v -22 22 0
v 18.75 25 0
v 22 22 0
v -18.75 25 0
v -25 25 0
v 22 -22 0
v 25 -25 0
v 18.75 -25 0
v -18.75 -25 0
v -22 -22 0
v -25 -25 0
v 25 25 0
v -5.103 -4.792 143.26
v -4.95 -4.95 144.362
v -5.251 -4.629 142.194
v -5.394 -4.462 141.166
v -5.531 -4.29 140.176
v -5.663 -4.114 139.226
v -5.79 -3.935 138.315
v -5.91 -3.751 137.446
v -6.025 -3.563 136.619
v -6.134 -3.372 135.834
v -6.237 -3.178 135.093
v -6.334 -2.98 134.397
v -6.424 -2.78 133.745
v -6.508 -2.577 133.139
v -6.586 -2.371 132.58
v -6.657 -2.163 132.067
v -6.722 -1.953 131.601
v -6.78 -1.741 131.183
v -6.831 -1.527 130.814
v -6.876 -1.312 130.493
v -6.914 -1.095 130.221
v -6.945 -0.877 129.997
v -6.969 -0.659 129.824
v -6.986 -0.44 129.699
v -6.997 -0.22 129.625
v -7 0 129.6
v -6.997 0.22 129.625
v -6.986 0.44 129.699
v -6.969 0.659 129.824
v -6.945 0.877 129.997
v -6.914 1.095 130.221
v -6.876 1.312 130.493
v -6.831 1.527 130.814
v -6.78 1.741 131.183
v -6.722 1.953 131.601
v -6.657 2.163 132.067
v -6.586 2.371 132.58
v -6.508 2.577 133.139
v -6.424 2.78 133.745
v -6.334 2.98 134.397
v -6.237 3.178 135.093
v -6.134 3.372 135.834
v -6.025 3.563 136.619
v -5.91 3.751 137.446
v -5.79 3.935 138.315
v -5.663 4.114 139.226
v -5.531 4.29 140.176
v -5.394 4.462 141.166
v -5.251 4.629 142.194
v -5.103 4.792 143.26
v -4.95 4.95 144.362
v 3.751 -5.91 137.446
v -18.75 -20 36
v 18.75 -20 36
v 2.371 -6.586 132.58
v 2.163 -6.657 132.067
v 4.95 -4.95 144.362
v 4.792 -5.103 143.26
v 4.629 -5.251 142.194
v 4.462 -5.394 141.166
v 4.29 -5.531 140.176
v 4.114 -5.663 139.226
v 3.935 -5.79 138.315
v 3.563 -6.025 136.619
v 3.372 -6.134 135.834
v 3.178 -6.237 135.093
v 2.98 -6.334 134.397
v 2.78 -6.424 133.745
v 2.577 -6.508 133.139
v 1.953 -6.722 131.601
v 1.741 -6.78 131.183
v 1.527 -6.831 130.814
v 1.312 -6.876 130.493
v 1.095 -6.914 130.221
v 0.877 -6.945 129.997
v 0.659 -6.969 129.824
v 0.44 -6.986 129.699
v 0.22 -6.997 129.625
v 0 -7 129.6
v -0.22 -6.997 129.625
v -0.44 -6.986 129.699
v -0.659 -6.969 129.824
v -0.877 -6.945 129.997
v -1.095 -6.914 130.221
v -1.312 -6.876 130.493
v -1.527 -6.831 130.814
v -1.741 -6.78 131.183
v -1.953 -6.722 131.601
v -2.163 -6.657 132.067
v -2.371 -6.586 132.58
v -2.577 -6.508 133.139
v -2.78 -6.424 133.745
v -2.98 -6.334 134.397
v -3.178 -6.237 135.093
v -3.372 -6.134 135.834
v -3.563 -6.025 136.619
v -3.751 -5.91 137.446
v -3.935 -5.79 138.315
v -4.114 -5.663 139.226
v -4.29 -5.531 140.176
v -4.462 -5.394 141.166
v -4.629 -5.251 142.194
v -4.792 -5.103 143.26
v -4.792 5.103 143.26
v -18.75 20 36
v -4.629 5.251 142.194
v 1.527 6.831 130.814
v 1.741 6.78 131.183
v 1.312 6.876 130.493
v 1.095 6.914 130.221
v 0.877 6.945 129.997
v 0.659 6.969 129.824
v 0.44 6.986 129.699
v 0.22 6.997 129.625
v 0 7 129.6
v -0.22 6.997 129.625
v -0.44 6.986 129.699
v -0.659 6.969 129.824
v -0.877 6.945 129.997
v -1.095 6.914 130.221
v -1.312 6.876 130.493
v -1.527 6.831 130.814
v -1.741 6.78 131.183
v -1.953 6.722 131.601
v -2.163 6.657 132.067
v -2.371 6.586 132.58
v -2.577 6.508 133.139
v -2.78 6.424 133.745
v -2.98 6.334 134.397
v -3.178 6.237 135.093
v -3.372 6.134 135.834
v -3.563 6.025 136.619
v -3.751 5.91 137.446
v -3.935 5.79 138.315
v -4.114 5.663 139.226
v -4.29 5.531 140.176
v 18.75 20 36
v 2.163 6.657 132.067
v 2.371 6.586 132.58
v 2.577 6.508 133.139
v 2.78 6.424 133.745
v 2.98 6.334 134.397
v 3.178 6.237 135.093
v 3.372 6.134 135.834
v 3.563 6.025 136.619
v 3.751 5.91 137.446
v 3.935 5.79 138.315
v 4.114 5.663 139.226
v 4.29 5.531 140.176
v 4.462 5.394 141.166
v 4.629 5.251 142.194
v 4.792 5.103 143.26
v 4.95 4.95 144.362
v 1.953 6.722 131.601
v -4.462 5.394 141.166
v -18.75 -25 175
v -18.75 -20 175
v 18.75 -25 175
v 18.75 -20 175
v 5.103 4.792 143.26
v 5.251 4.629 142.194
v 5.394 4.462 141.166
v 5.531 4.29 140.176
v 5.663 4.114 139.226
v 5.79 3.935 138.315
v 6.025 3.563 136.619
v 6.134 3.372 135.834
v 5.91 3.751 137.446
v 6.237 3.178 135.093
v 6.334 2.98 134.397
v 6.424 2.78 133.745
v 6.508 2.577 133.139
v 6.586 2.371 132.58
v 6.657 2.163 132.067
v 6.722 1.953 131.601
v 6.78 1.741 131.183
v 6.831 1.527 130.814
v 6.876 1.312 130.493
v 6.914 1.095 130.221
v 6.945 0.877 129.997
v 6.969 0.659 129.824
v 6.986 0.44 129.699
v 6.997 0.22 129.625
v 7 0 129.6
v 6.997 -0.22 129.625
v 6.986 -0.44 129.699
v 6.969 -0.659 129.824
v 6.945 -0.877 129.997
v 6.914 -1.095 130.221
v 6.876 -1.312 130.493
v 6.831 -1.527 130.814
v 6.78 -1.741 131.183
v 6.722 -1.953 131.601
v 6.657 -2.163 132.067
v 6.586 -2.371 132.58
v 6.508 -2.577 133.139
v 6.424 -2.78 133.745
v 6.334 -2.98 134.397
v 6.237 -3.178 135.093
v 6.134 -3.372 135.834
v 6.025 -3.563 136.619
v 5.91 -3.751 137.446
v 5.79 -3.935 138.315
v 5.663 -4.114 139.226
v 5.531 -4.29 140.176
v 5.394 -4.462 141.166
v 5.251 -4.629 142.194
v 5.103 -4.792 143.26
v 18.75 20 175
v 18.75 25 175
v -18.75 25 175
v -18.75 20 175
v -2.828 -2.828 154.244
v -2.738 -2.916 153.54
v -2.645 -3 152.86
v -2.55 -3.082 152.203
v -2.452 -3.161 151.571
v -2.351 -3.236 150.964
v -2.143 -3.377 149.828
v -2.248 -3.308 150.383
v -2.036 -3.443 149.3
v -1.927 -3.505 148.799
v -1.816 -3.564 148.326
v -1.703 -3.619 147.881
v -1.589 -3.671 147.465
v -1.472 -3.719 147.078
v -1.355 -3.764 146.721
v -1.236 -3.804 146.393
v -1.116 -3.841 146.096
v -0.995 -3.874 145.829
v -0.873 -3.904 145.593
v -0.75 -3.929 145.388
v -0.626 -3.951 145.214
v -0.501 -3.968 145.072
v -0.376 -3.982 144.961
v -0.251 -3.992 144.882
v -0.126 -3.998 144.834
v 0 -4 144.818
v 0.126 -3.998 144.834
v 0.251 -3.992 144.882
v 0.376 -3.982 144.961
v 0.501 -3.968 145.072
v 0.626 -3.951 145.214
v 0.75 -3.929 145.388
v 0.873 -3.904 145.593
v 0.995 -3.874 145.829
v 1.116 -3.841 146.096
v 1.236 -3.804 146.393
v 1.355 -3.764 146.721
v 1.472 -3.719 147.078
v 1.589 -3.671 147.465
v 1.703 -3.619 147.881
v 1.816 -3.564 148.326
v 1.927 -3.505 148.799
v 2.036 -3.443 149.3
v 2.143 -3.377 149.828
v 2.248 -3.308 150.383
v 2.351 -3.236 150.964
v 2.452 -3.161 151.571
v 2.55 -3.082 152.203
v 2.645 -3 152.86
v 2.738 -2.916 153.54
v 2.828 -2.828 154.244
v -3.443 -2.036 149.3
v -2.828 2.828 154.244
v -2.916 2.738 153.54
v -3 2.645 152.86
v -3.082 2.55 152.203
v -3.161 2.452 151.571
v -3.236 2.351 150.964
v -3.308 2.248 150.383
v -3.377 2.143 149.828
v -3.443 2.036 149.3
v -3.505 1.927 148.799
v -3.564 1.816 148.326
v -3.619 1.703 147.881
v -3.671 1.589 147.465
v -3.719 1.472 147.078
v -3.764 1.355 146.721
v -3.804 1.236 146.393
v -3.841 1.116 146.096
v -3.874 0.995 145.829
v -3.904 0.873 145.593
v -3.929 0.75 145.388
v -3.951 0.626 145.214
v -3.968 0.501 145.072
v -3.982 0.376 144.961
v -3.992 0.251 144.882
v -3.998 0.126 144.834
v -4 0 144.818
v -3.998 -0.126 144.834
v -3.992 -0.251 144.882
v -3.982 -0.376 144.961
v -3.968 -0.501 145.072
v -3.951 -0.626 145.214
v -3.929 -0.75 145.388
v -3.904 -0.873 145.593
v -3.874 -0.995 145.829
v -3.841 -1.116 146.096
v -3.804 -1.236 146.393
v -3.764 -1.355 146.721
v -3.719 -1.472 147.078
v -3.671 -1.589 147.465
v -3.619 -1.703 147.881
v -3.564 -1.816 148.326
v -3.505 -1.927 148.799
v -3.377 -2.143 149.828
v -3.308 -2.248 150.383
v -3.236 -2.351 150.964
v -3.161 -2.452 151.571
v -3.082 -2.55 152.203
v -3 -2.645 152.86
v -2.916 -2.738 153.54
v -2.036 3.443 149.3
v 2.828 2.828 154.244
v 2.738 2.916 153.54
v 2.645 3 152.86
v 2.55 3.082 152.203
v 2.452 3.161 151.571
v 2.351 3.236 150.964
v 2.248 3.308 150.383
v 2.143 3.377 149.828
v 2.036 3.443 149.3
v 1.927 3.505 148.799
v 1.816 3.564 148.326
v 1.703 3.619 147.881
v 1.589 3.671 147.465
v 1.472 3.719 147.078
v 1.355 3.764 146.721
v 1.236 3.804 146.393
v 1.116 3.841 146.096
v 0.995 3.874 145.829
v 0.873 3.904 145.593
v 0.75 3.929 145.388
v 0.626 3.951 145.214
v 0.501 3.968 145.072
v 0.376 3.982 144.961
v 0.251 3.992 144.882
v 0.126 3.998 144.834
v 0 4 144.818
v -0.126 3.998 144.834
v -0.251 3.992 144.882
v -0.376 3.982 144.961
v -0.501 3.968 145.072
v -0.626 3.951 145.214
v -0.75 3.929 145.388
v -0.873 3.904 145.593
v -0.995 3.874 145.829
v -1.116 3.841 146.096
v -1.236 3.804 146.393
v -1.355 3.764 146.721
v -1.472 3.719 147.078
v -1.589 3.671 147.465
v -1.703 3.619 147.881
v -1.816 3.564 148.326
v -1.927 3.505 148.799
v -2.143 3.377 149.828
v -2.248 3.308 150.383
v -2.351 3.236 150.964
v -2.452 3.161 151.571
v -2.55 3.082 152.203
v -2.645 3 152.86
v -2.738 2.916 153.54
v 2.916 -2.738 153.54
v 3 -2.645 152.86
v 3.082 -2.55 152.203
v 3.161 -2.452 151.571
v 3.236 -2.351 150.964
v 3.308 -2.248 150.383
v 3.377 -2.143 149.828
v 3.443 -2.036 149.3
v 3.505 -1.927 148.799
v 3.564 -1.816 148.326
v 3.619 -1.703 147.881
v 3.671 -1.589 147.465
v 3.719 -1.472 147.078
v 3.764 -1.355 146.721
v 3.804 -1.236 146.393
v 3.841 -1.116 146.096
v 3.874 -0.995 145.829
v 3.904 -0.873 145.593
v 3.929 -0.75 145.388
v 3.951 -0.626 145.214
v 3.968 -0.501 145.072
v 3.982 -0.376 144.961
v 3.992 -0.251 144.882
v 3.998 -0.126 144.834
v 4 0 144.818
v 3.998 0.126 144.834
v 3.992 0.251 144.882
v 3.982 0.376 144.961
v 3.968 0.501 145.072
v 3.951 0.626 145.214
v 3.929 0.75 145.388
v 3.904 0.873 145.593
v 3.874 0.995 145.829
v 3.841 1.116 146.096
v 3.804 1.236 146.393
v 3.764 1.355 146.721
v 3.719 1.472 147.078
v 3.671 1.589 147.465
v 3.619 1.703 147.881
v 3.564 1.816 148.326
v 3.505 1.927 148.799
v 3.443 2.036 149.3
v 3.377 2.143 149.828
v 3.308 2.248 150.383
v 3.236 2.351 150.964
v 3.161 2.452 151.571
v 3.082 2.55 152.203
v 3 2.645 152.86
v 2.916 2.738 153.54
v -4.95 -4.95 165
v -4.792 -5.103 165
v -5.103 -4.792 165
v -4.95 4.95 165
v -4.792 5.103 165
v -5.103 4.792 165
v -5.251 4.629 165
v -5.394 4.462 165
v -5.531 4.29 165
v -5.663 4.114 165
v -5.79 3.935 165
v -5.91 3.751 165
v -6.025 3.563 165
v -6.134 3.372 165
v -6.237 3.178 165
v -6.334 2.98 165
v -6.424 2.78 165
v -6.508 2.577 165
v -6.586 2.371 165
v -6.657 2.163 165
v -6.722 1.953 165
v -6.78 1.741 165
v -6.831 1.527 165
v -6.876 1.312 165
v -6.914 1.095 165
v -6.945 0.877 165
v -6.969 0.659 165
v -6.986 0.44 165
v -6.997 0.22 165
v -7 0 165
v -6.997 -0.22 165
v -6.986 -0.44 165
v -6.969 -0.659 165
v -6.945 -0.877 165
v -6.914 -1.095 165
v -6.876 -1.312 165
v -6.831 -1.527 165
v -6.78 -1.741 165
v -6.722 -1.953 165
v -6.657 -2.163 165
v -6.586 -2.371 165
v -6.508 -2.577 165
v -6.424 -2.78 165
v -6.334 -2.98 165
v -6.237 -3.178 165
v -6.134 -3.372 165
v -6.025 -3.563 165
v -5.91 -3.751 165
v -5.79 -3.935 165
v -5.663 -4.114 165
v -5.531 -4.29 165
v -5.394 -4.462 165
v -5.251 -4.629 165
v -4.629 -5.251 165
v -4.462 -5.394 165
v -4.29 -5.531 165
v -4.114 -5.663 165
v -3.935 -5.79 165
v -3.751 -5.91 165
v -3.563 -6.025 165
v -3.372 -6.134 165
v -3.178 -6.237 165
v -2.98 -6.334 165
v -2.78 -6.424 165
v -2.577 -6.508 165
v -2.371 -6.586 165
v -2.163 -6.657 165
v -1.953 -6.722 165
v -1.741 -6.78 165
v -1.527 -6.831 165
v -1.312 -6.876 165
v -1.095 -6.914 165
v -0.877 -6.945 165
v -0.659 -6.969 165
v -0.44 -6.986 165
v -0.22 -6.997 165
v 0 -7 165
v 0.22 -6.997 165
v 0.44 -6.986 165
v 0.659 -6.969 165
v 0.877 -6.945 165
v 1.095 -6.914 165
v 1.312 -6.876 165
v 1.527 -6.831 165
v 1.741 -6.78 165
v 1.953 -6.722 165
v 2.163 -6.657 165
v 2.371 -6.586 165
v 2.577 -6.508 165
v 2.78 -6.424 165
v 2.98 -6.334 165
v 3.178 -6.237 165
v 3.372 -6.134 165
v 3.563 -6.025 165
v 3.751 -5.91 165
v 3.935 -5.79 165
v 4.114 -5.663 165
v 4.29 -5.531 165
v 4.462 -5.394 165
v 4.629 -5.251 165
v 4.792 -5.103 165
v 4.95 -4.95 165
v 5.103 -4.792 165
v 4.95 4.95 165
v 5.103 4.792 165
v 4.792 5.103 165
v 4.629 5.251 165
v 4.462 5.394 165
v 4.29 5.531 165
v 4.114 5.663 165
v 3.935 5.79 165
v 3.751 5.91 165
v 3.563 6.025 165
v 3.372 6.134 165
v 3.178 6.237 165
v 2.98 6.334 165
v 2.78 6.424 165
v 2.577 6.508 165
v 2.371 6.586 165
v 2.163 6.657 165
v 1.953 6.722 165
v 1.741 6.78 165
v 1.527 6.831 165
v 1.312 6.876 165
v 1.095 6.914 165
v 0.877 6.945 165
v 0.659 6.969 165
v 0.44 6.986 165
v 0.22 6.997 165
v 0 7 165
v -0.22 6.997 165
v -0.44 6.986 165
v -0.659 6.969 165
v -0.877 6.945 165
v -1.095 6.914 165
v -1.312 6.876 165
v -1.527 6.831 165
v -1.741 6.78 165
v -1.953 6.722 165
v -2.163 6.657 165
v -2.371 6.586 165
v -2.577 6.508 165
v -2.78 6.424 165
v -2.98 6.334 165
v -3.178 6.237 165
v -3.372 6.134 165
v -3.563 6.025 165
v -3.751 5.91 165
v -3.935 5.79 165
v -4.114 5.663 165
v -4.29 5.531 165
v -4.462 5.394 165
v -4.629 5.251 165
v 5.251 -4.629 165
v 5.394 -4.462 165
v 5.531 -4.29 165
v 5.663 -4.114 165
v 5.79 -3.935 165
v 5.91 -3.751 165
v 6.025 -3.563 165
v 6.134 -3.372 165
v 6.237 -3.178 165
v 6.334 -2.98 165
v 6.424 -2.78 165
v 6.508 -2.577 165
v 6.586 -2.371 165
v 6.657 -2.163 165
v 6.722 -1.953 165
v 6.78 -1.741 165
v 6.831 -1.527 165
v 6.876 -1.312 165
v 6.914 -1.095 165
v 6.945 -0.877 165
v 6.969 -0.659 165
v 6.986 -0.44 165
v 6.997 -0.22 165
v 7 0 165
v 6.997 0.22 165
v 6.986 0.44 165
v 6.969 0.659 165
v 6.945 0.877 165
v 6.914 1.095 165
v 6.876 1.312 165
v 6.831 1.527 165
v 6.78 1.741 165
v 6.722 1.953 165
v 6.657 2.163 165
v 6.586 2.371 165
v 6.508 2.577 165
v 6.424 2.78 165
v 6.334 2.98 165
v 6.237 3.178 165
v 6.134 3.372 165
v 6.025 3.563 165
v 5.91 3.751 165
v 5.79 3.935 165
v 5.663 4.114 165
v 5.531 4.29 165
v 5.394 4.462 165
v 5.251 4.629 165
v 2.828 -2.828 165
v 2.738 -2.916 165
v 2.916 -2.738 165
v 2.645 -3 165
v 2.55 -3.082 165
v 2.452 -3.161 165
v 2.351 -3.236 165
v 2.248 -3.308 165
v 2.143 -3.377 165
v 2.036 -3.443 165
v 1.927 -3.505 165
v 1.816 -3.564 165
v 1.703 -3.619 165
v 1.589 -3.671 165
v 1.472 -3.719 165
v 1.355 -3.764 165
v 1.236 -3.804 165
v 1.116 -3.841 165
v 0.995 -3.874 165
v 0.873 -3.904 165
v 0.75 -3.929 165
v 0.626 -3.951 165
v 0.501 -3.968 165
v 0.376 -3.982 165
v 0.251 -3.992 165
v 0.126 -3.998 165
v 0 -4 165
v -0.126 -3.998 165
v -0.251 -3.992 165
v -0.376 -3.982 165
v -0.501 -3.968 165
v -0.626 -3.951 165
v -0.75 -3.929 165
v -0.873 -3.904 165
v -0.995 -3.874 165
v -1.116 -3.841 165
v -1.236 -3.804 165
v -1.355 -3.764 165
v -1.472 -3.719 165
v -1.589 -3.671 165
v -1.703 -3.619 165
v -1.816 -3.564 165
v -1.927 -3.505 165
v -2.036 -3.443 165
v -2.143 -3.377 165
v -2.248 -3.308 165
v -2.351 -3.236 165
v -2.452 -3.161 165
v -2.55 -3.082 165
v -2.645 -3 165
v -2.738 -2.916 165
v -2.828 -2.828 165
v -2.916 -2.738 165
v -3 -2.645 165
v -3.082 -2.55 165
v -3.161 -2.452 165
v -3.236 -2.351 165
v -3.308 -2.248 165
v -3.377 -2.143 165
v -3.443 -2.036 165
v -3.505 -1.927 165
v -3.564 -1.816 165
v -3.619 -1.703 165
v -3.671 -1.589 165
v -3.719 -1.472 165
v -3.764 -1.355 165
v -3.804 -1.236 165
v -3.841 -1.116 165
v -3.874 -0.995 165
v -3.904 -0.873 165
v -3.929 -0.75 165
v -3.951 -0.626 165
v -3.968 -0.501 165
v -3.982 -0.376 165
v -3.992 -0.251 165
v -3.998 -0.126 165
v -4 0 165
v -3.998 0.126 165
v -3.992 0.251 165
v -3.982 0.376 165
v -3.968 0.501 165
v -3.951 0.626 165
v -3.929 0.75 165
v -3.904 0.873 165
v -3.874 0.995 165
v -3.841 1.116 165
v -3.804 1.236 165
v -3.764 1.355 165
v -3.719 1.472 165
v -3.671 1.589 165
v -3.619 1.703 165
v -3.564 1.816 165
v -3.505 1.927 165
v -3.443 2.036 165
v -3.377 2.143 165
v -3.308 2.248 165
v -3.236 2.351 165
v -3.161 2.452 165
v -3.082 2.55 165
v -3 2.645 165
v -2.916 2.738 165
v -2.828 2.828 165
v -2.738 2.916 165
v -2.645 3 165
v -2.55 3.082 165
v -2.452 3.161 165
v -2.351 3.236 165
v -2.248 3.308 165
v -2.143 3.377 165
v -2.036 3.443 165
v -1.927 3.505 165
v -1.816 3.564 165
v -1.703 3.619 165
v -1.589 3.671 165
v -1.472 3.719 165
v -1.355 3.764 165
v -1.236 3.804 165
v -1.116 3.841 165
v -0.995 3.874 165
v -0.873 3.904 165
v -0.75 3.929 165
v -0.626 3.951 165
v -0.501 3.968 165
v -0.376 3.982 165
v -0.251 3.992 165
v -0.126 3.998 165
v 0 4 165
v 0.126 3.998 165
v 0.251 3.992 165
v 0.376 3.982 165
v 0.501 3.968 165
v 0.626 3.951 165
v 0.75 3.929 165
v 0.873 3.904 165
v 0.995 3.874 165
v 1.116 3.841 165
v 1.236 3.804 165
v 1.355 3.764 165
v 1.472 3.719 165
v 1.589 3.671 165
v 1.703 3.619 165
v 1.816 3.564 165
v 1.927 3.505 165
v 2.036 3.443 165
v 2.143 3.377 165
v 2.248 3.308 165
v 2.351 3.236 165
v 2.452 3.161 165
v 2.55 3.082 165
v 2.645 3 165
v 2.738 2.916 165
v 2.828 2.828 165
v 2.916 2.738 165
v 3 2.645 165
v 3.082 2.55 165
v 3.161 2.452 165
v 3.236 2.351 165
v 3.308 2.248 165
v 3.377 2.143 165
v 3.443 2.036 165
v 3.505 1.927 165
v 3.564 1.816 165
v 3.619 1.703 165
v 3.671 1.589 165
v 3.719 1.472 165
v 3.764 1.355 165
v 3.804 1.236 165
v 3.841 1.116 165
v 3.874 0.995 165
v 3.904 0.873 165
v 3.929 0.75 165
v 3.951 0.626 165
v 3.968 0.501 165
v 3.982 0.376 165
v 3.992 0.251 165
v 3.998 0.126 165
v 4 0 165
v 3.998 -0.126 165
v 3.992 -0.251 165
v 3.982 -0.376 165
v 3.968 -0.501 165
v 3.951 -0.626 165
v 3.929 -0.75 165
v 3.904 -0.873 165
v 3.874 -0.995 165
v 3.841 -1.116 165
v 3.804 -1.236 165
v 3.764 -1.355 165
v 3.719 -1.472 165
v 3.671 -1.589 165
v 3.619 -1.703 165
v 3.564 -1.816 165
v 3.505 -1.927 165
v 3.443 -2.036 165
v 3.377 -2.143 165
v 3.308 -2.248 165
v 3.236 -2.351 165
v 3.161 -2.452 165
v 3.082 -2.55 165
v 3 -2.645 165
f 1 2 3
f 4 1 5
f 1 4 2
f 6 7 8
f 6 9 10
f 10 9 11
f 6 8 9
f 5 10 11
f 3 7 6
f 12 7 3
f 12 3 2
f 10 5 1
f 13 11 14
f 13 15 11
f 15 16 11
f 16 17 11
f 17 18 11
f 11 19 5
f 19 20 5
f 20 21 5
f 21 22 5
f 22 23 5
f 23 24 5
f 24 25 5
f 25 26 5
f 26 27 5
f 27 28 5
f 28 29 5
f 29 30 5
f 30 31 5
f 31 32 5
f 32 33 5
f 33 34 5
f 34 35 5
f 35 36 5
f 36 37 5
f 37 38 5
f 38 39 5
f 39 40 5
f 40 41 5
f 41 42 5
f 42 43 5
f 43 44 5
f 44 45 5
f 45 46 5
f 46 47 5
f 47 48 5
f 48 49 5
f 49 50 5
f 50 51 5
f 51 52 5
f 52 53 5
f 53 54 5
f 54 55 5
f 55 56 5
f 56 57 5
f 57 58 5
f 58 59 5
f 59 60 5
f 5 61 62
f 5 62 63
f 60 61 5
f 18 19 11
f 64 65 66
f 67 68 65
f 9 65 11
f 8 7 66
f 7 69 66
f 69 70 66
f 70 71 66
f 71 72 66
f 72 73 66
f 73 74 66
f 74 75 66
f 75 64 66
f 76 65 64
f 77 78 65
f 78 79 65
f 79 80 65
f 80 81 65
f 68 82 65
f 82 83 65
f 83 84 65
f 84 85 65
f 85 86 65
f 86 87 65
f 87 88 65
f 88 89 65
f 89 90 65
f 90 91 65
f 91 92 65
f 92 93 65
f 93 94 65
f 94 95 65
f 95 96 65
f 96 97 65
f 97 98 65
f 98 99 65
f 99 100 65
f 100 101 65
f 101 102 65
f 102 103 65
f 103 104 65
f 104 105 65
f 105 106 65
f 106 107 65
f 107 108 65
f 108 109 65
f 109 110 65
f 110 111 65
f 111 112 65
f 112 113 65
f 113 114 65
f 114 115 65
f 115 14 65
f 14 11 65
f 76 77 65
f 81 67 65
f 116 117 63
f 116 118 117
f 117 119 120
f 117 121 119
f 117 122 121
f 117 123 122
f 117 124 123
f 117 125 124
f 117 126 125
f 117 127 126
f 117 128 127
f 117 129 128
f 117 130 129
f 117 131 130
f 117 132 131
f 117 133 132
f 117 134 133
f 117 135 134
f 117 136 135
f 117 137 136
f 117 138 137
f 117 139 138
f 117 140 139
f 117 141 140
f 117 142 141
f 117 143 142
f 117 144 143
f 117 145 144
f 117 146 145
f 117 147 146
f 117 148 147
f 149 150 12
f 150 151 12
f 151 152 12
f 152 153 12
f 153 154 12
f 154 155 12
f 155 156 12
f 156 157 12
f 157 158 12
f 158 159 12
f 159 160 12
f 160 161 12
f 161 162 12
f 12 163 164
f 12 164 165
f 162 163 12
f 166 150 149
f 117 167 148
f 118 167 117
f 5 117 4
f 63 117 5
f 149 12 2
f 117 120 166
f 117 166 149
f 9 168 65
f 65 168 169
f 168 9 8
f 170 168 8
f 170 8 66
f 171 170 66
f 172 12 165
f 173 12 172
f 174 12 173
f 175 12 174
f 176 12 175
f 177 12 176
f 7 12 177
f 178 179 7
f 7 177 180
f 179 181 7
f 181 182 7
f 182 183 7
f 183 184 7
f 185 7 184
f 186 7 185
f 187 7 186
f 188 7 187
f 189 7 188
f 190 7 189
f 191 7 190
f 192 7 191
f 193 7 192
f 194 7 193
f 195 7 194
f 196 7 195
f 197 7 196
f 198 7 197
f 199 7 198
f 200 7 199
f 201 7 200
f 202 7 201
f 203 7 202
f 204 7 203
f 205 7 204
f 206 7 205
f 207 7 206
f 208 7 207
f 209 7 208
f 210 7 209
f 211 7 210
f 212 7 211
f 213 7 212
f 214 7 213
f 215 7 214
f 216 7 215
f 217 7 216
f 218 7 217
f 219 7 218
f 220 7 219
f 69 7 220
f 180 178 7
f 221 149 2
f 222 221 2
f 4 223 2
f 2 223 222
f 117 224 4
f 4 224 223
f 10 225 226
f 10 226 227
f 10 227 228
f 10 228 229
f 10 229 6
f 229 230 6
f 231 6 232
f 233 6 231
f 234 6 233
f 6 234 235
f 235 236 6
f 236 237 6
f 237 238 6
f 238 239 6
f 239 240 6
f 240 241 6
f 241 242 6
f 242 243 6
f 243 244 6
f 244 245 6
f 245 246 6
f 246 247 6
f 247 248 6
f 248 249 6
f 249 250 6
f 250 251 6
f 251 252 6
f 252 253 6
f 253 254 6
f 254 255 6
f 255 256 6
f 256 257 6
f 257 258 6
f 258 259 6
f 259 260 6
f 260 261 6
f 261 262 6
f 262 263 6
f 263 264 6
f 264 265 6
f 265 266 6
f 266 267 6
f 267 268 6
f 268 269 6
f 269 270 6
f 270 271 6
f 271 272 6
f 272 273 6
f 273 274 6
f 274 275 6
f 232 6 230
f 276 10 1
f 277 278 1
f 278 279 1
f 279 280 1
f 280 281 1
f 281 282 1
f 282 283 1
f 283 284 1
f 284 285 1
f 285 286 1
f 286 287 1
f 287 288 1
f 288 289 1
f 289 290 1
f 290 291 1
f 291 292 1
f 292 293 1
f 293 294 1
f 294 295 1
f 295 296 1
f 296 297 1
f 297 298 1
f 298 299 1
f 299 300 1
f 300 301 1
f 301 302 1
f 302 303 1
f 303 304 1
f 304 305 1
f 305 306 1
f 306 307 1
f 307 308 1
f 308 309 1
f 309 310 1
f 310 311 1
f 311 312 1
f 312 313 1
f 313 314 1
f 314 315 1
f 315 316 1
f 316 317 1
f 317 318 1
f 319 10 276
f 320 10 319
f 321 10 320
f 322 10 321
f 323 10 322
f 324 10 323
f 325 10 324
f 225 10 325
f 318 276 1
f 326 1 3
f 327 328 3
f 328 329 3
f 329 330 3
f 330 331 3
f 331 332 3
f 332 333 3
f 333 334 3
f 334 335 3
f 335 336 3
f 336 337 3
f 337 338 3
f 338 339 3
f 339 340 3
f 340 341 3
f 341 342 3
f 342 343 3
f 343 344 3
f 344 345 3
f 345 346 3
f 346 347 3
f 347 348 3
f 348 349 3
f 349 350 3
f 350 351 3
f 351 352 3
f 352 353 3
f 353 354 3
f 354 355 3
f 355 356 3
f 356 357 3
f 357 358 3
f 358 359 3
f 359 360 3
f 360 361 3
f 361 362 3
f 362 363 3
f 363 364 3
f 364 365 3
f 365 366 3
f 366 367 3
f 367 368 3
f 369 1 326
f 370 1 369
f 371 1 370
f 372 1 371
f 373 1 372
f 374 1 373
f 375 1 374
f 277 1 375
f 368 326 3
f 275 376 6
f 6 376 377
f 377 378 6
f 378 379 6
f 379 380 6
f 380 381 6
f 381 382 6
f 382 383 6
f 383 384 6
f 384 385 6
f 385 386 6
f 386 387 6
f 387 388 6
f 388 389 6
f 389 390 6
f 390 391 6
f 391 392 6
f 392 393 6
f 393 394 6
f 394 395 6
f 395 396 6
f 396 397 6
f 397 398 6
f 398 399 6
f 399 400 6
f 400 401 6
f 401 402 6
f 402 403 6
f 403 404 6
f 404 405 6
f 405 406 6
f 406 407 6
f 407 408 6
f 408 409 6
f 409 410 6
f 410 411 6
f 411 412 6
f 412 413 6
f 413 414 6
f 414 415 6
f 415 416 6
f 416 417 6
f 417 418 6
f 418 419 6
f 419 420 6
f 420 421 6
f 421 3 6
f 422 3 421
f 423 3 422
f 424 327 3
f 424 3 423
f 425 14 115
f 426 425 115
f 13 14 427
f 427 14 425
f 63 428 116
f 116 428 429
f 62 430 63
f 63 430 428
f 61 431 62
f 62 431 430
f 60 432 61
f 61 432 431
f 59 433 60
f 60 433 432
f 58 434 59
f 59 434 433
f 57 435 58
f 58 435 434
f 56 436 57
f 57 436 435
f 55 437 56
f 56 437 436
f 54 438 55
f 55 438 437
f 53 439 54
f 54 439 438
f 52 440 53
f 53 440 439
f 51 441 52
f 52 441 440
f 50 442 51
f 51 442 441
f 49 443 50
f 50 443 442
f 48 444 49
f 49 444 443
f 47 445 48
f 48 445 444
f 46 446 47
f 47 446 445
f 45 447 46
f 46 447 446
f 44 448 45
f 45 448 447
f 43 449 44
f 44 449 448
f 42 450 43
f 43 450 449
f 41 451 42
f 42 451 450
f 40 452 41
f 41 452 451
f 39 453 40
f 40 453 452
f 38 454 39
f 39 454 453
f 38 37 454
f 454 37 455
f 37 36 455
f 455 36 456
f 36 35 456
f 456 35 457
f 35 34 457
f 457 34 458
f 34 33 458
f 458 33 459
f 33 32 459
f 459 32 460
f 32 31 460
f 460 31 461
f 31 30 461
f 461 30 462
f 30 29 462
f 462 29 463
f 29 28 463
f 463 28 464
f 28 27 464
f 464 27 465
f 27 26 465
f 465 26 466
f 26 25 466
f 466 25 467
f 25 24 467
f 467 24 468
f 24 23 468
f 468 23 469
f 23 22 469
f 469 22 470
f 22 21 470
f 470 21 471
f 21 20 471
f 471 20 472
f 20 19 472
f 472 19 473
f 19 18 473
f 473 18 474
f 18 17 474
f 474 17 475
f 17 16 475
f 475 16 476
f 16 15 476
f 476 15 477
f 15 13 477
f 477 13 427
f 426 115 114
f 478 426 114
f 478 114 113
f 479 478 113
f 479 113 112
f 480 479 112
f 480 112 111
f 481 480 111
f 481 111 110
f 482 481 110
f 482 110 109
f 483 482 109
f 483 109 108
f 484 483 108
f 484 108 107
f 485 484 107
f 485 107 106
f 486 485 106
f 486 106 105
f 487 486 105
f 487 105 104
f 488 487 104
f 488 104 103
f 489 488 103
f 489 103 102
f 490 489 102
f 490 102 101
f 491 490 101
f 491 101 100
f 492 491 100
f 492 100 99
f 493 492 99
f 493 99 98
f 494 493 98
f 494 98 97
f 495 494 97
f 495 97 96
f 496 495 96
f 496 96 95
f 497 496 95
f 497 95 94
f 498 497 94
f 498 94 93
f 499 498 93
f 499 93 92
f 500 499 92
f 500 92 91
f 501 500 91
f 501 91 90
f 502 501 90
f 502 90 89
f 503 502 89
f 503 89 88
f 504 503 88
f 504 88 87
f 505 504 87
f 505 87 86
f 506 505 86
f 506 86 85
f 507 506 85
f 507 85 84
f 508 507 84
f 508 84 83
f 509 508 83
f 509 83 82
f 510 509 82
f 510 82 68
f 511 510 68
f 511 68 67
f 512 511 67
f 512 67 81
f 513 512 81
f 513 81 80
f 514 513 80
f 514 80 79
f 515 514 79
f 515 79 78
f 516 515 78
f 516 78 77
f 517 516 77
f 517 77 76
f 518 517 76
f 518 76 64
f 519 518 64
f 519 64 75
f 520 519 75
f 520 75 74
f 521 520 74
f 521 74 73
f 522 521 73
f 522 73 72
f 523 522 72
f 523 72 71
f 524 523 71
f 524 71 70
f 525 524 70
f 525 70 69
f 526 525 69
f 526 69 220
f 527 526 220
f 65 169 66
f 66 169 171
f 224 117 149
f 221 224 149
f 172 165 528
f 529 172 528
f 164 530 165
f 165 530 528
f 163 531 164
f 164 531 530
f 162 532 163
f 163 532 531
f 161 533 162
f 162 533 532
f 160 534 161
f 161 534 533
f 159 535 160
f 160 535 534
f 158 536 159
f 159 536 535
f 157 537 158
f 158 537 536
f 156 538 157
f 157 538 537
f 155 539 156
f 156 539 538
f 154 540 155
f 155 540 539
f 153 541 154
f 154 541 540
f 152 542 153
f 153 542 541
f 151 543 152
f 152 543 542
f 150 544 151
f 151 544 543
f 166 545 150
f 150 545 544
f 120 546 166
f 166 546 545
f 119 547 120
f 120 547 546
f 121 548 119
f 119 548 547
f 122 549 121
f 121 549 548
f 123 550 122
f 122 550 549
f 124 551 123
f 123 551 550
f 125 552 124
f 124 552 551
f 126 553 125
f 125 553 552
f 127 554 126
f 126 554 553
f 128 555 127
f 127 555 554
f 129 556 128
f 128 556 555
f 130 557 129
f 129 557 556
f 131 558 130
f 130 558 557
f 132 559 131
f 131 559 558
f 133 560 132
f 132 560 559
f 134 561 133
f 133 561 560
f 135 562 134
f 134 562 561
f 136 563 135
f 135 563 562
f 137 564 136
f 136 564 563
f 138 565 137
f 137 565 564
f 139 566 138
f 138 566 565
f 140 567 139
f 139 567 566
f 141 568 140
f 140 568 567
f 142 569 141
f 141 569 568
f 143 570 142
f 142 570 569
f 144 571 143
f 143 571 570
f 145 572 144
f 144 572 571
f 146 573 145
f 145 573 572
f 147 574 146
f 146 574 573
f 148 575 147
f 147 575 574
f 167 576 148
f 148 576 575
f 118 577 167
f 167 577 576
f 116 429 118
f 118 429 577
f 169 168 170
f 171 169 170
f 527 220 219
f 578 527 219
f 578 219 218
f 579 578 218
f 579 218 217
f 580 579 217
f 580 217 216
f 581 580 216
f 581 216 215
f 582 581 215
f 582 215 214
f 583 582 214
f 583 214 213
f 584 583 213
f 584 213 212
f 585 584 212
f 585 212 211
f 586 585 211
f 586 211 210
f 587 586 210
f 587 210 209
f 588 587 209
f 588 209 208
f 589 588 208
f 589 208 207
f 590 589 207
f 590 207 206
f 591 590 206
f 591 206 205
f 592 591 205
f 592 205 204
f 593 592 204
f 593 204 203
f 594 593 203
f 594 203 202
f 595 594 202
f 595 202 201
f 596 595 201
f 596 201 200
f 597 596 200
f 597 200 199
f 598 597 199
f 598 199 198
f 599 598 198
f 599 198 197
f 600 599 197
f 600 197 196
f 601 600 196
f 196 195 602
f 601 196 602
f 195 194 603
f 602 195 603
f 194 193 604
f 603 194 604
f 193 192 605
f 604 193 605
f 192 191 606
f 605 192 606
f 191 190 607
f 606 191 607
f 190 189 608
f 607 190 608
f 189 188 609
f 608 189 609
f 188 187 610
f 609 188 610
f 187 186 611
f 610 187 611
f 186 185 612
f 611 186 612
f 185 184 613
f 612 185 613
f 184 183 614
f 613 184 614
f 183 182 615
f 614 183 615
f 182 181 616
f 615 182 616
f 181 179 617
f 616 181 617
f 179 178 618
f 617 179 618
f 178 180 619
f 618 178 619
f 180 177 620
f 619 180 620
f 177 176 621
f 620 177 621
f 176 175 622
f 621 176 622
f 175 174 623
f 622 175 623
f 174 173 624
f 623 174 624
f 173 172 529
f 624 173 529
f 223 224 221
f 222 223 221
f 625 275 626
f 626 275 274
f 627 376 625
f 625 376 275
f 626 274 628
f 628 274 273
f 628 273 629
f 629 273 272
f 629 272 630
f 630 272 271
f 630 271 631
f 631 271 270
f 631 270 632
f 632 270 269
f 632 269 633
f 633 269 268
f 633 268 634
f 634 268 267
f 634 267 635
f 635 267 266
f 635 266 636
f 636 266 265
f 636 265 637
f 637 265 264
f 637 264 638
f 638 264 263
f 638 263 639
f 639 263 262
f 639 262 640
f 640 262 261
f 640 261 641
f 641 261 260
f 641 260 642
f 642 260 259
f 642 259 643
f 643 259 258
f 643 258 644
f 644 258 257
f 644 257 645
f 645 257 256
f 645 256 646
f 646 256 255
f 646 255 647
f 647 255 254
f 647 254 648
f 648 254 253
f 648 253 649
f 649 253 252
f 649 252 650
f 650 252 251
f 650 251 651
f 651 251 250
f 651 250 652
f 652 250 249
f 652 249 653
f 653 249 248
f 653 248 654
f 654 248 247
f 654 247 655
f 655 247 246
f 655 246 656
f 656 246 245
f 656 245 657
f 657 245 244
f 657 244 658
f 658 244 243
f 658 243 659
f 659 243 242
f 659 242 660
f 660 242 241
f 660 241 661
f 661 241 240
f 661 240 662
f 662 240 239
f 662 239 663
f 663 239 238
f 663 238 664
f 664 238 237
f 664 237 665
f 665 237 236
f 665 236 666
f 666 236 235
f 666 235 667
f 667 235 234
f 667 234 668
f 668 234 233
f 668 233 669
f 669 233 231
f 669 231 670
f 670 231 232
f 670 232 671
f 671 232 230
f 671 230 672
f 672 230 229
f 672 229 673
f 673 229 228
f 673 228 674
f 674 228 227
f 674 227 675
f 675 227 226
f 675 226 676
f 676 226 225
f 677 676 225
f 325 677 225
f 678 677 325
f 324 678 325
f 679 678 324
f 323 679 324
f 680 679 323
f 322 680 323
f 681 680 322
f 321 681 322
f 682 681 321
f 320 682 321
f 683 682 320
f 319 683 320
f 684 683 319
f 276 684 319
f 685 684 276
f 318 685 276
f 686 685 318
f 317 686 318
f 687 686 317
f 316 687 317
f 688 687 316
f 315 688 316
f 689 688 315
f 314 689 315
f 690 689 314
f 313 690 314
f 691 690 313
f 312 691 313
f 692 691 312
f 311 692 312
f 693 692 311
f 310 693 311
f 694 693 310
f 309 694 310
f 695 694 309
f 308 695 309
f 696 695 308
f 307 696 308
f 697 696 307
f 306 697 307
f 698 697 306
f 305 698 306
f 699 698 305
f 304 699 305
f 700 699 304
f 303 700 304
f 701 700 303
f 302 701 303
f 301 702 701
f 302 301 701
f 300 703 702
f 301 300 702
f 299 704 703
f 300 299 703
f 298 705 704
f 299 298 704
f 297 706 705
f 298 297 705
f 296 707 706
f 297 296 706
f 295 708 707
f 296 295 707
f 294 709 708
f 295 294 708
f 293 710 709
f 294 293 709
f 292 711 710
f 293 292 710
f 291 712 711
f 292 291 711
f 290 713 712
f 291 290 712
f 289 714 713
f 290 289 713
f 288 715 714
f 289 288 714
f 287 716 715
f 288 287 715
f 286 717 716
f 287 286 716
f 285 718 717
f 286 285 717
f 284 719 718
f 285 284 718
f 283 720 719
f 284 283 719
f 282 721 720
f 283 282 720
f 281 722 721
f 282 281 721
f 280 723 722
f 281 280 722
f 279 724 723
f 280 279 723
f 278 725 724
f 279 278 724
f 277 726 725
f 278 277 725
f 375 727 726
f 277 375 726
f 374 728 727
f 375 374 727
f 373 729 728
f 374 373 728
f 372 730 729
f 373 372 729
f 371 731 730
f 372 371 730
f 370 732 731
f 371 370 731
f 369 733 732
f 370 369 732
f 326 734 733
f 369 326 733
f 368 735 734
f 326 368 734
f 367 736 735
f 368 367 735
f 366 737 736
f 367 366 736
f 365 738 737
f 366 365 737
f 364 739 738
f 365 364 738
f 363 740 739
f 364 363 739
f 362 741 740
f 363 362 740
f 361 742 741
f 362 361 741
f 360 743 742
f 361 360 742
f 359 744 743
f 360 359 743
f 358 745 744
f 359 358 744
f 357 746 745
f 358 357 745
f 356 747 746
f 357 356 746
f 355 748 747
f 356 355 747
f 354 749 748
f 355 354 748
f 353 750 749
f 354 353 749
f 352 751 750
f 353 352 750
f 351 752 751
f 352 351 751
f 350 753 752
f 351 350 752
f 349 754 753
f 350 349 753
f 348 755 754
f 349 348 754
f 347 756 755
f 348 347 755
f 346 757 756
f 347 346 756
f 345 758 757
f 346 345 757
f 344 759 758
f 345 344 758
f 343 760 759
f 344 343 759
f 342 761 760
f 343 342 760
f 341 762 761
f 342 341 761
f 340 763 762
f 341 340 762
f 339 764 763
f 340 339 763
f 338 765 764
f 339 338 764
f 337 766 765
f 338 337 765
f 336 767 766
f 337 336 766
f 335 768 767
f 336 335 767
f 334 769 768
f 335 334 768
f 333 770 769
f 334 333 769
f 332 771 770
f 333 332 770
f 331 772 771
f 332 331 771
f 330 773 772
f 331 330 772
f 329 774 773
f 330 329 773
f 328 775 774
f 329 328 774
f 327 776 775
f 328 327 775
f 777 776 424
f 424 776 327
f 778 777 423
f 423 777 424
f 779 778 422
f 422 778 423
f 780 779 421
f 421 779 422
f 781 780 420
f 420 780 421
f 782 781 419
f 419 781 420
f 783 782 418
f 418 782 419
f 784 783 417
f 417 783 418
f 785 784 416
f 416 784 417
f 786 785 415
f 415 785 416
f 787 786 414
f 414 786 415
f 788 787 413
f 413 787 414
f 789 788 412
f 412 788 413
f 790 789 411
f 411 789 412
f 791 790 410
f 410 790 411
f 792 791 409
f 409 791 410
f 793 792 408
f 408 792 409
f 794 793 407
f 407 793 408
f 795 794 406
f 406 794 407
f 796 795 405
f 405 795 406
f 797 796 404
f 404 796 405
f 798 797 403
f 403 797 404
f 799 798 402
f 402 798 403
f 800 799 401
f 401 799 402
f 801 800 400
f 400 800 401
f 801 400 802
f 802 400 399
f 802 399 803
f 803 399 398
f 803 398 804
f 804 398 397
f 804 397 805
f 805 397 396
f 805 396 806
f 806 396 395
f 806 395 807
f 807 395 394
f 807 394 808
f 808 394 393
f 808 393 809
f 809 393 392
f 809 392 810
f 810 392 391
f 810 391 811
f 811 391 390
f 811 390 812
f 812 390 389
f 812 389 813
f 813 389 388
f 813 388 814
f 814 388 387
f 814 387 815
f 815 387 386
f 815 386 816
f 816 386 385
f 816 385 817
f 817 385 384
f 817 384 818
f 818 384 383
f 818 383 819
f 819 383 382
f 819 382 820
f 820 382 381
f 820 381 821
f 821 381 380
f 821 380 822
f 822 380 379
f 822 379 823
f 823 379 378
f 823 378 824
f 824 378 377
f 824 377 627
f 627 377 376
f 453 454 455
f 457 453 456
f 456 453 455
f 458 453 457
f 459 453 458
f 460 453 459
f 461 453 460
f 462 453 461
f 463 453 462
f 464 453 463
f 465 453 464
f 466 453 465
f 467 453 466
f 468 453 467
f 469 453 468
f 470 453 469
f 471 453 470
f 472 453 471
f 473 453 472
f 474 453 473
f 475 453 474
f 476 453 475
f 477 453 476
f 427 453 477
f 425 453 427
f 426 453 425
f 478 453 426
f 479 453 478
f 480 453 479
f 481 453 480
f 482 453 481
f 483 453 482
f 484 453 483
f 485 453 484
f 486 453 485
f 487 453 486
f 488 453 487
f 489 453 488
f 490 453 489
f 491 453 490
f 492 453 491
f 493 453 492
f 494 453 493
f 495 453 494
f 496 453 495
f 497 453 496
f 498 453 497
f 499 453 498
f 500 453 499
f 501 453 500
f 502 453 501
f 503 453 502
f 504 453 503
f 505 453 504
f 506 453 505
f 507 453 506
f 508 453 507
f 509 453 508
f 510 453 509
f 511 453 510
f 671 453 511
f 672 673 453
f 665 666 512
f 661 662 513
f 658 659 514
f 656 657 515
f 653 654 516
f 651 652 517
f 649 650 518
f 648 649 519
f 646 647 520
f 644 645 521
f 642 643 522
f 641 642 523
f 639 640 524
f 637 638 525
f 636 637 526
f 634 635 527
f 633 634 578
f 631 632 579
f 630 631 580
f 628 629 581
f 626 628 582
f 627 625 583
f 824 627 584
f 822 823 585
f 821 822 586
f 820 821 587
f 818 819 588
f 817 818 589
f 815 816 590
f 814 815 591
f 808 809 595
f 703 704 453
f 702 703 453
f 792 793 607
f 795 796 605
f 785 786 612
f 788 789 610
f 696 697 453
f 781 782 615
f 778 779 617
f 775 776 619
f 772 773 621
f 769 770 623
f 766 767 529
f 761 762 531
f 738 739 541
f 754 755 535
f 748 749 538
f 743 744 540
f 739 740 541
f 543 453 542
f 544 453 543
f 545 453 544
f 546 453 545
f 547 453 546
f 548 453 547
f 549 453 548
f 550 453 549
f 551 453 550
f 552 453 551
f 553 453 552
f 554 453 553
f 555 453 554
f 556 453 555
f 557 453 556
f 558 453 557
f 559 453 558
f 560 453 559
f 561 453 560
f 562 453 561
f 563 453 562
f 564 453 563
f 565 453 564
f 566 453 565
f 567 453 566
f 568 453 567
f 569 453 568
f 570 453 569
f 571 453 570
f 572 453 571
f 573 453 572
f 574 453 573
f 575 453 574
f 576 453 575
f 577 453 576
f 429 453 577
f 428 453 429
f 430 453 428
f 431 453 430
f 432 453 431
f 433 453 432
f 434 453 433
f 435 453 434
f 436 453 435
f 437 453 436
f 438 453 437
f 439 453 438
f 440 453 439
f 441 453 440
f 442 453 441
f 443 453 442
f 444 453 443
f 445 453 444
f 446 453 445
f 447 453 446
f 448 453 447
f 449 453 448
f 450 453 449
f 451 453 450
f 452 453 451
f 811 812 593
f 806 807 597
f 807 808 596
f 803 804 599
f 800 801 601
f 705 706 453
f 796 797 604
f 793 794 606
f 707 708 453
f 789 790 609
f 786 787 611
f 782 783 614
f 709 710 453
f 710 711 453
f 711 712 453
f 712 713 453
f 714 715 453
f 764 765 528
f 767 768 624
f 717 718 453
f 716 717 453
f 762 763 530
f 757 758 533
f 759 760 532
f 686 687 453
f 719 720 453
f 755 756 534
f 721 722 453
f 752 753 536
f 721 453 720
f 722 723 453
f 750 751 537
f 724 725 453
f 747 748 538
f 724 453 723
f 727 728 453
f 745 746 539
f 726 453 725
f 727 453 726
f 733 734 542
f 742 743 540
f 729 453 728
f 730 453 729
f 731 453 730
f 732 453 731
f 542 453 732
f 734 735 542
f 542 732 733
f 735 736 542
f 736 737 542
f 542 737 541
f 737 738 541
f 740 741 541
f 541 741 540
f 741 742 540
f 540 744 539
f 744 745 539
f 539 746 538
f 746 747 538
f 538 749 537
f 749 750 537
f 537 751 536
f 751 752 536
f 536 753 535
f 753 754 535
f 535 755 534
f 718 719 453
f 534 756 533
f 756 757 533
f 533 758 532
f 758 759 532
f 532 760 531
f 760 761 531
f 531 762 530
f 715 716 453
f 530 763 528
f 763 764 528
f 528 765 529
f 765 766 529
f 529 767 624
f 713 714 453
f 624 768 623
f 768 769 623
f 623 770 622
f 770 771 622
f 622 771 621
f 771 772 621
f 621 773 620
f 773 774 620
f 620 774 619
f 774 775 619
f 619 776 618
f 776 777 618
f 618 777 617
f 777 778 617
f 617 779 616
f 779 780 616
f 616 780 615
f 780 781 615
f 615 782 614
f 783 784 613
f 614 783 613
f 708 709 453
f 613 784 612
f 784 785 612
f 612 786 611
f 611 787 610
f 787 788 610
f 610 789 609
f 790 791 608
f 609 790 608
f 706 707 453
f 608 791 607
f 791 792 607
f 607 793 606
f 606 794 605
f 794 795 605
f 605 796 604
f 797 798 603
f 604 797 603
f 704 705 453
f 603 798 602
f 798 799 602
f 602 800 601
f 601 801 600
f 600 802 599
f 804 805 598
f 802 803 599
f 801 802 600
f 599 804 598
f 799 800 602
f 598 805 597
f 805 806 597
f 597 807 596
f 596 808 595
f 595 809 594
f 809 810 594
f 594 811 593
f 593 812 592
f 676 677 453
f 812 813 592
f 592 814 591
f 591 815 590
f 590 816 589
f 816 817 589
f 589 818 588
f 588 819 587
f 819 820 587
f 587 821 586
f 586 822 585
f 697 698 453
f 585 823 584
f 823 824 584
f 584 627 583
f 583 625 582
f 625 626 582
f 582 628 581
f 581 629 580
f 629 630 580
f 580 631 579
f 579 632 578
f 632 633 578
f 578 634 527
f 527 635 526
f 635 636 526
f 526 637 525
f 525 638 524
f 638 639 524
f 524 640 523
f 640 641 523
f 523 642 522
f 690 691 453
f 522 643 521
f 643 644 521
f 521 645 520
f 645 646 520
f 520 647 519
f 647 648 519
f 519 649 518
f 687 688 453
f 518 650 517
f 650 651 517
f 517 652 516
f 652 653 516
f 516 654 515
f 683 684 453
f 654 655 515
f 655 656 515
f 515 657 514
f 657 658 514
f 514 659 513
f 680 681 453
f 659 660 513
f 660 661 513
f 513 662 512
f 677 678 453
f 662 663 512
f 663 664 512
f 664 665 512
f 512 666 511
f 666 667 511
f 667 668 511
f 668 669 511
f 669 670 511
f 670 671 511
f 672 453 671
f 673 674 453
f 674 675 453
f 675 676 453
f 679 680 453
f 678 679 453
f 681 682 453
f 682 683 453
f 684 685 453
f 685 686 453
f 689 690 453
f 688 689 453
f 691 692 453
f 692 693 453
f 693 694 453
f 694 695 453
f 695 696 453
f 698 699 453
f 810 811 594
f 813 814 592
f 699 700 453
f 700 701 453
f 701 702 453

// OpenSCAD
module pyramid(a,b,v){ // a - width, b - length, v - heigth
translate([-a/2,-b/2,0]){
polyhedron(
  points=[ [0,0,0],[a,0,0],[a,b,0],[0,b,0], // the four points at base
           [a/2,b/2,v]  ],                                 // the apex point 
  faces=[ [0,1,4],[1,2,4],[2,3,4],[3,0,4],              // each triangle side
              [1,0,3],[2,1,3] ]                         // two triangles for square base
 );
}
}

module wax_pyramid(a,b,v,wall,r1,r2,h,foot_w,foot_l){
	difference(){
	union(){
		cylinder(h+v, r=r1, $fn=200);
		pyramid(a,b,v);
		translate([-a*3/8,-b/2,0])
		cube([foot_l,foot_w,h+v+10]);
		translate([a*3/8-foot_l,-b/2,0])
		cube([foot_l,foot_w,h+v+10]);
		translate([-a*3/8,b/2-foot_w,0])
		cube([foot_l,foot_w,h+v+10]);
		translate([a*3/8-foot_l,b/2-foot_w,0])
		cube([foot_l,foot_w,h+v+10]);
	}
		pyramid(a-2*wall,b-2*wall,v-wall);
		cylinder(h+v+15, r=r2, $fn=200);
	}

}

//chimney(10,5,20);
wax_pyramid(50,50,180,3,7,4,-15,5,20);
